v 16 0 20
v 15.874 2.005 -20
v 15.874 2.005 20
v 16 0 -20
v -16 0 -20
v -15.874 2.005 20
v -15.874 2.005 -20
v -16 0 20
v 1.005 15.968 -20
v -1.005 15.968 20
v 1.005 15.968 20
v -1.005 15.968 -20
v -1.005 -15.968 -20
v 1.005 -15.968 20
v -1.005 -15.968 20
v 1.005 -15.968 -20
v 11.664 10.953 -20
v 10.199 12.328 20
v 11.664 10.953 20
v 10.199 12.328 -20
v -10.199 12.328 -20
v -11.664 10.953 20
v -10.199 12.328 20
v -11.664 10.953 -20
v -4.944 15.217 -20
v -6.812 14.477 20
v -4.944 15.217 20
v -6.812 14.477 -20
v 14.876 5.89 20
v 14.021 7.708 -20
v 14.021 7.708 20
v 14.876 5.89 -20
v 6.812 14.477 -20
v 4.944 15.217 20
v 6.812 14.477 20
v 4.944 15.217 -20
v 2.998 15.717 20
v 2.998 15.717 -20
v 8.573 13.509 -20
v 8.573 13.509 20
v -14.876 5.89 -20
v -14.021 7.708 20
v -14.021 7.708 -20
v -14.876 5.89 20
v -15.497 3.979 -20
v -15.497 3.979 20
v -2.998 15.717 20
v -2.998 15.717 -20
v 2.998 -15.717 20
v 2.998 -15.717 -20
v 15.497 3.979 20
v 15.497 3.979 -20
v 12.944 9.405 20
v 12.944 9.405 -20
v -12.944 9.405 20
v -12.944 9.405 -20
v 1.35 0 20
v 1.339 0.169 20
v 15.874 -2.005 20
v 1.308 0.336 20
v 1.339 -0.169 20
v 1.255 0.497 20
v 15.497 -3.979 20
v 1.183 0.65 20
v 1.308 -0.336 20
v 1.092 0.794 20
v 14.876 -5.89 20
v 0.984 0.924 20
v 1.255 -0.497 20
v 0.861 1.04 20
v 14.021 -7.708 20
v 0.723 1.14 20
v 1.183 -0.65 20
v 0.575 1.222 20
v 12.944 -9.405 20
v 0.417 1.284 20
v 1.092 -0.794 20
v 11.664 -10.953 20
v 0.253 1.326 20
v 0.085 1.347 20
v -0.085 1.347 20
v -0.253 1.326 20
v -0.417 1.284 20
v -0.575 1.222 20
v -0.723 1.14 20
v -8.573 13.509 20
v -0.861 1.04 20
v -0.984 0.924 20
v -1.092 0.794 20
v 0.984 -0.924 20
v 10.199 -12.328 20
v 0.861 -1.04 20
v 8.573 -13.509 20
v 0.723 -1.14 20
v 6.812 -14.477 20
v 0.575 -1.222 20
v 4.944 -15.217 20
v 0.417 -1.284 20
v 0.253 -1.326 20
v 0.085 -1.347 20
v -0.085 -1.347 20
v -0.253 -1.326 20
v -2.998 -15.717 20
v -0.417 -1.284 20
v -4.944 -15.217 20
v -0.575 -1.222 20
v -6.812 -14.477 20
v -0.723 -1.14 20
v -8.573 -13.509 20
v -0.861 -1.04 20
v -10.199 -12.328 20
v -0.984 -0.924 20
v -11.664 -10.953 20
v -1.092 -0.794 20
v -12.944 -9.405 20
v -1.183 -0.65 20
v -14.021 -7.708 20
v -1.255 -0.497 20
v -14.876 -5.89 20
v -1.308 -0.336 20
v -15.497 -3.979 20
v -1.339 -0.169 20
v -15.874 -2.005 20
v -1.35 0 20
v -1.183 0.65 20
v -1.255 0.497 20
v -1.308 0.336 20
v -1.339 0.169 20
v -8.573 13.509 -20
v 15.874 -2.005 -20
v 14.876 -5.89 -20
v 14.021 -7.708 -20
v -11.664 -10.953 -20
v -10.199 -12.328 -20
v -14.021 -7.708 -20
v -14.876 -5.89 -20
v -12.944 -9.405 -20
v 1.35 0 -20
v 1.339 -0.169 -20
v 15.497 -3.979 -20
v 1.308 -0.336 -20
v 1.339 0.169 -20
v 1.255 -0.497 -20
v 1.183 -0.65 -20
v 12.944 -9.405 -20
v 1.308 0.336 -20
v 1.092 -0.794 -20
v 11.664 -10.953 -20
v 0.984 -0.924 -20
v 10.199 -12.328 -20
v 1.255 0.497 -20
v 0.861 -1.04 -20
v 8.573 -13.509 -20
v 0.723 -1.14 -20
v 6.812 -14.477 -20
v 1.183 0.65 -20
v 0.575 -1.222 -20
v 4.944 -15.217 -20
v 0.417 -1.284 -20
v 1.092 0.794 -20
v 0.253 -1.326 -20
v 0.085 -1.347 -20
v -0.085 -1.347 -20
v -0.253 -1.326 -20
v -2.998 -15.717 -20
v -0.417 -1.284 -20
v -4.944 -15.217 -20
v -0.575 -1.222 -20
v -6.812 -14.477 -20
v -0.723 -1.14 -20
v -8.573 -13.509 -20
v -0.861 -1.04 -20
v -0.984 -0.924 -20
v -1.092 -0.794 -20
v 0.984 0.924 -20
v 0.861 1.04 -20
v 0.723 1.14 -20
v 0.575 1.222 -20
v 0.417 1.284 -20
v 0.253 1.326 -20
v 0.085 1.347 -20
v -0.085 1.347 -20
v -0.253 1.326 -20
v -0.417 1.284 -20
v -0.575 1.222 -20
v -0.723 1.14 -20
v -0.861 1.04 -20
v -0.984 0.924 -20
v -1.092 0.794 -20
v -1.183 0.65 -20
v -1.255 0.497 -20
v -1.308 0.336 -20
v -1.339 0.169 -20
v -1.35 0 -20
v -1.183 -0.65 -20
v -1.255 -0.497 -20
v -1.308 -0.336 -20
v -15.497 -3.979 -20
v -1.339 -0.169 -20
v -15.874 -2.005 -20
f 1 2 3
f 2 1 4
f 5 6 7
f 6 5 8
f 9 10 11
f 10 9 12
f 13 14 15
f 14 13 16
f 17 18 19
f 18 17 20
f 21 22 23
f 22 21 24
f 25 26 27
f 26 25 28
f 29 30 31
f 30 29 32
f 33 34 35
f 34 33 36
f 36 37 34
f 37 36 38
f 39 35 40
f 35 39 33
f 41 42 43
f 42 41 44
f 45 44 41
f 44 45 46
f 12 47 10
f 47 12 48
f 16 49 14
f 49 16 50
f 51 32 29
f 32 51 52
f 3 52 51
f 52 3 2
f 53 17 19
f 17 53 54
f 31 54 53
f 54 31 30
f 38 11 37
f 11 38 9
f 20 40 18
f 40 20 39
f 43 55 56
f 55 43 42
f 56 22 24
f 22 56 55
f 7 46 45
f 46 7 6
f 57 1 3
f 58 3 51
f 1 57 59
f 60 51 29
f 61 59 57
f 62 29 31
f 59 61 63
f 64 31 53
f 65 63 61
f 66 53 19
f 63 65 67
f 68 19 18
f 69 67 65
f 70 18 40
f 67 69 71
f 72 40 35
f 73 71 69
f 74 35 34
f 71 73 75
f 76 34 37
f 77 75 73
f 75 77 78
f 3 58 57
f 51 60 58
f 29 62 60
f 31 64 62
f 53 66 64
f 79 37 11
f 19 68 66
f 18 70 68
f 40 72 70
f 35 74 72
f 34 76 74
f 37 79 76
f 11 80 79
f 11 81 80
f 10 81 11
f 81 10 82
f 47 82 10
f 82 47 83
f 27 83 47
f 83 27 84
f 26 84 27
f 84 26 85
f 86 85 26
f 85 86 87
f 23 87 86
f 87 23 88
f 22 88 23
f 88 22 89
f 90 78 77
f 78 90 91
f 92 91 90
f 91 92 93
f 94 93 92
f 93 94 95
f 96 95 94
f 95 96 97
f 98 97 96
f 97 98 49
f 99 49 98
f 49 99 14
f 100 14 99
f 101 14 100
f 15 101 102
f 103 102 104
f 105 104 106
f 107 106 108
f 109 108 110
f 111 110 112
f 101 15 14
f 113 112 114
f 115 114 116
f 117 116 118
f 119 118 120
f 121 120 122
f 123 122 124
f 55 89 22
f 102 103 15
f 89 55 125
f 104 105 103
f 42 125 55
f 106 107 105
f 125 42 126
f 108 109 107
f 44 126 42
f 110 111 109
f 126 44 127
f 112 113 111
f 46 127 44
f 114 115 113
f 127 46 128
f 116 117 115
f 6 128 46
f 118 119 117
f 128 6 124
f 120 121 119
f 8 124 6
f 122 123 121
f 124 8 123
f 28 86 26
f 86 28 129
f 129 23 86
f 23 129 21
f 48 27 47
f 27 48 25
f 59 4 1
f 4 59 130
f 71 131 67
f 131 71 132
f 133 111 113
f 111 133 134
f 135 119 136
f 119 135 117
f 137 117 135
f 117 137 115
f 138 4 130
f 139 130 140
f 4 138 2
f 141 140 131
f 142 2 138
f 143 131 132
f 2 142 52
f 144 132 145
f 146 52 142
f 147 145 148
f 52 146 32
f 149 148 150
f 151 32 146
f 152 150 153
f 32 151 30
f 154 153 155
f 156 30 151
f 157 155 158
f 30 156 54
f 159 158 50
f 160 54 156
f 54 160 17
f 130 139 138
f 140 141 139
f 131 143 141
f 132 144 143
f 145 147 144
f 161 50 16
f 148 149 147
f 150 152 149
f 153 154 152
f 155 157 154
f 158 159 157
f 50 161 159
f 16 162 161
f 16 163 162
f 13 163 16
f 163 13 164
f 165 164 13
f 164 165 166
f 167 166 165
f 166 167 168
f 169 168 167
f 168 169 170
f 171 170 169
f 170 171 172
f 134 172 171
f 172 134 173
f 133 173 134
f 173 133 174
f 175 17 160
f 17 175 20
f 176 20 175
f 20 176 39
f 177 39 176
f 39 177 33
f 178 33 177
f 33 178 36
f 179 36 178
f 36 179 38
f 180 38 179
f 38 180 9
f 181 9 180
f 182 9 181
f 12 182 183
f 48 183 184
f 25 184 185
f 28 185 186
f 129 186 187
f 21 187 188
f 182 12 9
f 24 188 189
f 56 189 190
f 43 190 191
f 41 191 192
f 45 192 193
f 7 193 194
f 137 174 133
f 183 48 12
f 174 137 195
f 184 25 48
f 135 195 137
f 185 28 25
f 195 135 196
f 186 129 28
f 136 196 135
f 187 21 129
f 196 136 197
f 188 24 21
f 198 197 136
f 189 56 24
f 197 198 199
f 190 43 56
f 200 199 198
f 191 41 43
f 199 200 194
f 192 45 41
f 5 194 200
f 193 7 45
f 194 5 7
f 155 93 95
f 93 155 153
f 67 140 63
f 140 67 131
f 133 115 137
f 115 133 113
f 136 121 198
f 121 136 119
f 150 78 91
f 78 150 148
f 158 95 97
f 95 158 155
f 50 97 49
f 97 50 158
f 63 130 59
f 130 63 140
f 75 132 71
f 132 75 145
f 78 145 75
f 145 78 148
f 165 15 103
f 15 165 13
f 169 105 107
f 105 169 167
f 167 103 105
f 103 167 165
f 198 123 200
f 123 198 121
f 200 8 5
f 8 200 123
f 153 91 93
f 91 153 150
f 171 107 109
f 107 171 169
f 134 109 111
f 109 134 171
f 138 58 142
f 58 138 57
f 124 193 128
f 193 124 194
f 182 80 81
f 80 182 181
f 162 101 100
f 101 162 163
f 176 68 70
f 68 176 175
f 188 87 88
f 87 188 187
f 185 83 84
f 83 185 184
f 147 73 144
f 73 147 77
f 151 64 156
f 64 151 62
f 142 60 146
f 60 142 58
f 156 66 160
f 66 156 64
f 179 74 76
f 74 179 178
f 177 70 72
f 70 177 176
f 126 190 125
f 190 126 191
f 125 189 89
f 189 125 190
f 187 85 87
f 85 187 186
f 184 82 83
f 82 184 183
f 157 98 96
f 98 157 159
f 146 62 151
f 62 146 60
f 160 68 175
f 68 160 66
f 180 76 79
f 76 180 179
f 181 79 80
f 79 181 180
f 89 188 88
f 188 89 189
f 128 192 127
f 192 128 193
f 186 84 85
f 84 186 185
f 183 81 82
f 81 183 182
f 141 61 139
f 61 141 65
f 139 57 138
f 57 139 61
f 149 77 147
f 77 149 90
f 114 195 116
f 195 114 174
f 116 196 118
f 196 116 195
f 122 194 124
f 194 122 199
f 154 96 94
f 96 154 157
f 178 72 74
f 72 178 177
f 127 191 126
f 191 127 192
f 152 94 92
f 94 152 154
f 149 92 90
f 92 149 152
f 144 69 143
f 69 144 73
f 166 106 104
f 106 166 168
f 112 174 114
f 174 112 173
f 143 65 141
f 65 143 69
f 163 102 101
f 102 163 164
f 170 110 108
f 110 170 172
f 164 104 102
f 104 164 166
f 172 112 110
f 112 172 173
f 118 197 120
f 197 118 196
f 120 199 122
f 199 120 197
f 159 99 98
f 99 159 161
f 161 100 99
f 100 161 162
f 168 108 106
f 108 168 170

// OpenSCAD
$fn = 50;


difference() {
	union() {
		translate(v = [0, 0, -20.0000000000]) {
			cylinder(h = 40, r = 16.0000000000);
		}
	}
	union() {
		translate(v = [0, 0, -100.0000000000]) {
			cylinder(h = 200, r = 1.3500000000);
		}
	}
}
